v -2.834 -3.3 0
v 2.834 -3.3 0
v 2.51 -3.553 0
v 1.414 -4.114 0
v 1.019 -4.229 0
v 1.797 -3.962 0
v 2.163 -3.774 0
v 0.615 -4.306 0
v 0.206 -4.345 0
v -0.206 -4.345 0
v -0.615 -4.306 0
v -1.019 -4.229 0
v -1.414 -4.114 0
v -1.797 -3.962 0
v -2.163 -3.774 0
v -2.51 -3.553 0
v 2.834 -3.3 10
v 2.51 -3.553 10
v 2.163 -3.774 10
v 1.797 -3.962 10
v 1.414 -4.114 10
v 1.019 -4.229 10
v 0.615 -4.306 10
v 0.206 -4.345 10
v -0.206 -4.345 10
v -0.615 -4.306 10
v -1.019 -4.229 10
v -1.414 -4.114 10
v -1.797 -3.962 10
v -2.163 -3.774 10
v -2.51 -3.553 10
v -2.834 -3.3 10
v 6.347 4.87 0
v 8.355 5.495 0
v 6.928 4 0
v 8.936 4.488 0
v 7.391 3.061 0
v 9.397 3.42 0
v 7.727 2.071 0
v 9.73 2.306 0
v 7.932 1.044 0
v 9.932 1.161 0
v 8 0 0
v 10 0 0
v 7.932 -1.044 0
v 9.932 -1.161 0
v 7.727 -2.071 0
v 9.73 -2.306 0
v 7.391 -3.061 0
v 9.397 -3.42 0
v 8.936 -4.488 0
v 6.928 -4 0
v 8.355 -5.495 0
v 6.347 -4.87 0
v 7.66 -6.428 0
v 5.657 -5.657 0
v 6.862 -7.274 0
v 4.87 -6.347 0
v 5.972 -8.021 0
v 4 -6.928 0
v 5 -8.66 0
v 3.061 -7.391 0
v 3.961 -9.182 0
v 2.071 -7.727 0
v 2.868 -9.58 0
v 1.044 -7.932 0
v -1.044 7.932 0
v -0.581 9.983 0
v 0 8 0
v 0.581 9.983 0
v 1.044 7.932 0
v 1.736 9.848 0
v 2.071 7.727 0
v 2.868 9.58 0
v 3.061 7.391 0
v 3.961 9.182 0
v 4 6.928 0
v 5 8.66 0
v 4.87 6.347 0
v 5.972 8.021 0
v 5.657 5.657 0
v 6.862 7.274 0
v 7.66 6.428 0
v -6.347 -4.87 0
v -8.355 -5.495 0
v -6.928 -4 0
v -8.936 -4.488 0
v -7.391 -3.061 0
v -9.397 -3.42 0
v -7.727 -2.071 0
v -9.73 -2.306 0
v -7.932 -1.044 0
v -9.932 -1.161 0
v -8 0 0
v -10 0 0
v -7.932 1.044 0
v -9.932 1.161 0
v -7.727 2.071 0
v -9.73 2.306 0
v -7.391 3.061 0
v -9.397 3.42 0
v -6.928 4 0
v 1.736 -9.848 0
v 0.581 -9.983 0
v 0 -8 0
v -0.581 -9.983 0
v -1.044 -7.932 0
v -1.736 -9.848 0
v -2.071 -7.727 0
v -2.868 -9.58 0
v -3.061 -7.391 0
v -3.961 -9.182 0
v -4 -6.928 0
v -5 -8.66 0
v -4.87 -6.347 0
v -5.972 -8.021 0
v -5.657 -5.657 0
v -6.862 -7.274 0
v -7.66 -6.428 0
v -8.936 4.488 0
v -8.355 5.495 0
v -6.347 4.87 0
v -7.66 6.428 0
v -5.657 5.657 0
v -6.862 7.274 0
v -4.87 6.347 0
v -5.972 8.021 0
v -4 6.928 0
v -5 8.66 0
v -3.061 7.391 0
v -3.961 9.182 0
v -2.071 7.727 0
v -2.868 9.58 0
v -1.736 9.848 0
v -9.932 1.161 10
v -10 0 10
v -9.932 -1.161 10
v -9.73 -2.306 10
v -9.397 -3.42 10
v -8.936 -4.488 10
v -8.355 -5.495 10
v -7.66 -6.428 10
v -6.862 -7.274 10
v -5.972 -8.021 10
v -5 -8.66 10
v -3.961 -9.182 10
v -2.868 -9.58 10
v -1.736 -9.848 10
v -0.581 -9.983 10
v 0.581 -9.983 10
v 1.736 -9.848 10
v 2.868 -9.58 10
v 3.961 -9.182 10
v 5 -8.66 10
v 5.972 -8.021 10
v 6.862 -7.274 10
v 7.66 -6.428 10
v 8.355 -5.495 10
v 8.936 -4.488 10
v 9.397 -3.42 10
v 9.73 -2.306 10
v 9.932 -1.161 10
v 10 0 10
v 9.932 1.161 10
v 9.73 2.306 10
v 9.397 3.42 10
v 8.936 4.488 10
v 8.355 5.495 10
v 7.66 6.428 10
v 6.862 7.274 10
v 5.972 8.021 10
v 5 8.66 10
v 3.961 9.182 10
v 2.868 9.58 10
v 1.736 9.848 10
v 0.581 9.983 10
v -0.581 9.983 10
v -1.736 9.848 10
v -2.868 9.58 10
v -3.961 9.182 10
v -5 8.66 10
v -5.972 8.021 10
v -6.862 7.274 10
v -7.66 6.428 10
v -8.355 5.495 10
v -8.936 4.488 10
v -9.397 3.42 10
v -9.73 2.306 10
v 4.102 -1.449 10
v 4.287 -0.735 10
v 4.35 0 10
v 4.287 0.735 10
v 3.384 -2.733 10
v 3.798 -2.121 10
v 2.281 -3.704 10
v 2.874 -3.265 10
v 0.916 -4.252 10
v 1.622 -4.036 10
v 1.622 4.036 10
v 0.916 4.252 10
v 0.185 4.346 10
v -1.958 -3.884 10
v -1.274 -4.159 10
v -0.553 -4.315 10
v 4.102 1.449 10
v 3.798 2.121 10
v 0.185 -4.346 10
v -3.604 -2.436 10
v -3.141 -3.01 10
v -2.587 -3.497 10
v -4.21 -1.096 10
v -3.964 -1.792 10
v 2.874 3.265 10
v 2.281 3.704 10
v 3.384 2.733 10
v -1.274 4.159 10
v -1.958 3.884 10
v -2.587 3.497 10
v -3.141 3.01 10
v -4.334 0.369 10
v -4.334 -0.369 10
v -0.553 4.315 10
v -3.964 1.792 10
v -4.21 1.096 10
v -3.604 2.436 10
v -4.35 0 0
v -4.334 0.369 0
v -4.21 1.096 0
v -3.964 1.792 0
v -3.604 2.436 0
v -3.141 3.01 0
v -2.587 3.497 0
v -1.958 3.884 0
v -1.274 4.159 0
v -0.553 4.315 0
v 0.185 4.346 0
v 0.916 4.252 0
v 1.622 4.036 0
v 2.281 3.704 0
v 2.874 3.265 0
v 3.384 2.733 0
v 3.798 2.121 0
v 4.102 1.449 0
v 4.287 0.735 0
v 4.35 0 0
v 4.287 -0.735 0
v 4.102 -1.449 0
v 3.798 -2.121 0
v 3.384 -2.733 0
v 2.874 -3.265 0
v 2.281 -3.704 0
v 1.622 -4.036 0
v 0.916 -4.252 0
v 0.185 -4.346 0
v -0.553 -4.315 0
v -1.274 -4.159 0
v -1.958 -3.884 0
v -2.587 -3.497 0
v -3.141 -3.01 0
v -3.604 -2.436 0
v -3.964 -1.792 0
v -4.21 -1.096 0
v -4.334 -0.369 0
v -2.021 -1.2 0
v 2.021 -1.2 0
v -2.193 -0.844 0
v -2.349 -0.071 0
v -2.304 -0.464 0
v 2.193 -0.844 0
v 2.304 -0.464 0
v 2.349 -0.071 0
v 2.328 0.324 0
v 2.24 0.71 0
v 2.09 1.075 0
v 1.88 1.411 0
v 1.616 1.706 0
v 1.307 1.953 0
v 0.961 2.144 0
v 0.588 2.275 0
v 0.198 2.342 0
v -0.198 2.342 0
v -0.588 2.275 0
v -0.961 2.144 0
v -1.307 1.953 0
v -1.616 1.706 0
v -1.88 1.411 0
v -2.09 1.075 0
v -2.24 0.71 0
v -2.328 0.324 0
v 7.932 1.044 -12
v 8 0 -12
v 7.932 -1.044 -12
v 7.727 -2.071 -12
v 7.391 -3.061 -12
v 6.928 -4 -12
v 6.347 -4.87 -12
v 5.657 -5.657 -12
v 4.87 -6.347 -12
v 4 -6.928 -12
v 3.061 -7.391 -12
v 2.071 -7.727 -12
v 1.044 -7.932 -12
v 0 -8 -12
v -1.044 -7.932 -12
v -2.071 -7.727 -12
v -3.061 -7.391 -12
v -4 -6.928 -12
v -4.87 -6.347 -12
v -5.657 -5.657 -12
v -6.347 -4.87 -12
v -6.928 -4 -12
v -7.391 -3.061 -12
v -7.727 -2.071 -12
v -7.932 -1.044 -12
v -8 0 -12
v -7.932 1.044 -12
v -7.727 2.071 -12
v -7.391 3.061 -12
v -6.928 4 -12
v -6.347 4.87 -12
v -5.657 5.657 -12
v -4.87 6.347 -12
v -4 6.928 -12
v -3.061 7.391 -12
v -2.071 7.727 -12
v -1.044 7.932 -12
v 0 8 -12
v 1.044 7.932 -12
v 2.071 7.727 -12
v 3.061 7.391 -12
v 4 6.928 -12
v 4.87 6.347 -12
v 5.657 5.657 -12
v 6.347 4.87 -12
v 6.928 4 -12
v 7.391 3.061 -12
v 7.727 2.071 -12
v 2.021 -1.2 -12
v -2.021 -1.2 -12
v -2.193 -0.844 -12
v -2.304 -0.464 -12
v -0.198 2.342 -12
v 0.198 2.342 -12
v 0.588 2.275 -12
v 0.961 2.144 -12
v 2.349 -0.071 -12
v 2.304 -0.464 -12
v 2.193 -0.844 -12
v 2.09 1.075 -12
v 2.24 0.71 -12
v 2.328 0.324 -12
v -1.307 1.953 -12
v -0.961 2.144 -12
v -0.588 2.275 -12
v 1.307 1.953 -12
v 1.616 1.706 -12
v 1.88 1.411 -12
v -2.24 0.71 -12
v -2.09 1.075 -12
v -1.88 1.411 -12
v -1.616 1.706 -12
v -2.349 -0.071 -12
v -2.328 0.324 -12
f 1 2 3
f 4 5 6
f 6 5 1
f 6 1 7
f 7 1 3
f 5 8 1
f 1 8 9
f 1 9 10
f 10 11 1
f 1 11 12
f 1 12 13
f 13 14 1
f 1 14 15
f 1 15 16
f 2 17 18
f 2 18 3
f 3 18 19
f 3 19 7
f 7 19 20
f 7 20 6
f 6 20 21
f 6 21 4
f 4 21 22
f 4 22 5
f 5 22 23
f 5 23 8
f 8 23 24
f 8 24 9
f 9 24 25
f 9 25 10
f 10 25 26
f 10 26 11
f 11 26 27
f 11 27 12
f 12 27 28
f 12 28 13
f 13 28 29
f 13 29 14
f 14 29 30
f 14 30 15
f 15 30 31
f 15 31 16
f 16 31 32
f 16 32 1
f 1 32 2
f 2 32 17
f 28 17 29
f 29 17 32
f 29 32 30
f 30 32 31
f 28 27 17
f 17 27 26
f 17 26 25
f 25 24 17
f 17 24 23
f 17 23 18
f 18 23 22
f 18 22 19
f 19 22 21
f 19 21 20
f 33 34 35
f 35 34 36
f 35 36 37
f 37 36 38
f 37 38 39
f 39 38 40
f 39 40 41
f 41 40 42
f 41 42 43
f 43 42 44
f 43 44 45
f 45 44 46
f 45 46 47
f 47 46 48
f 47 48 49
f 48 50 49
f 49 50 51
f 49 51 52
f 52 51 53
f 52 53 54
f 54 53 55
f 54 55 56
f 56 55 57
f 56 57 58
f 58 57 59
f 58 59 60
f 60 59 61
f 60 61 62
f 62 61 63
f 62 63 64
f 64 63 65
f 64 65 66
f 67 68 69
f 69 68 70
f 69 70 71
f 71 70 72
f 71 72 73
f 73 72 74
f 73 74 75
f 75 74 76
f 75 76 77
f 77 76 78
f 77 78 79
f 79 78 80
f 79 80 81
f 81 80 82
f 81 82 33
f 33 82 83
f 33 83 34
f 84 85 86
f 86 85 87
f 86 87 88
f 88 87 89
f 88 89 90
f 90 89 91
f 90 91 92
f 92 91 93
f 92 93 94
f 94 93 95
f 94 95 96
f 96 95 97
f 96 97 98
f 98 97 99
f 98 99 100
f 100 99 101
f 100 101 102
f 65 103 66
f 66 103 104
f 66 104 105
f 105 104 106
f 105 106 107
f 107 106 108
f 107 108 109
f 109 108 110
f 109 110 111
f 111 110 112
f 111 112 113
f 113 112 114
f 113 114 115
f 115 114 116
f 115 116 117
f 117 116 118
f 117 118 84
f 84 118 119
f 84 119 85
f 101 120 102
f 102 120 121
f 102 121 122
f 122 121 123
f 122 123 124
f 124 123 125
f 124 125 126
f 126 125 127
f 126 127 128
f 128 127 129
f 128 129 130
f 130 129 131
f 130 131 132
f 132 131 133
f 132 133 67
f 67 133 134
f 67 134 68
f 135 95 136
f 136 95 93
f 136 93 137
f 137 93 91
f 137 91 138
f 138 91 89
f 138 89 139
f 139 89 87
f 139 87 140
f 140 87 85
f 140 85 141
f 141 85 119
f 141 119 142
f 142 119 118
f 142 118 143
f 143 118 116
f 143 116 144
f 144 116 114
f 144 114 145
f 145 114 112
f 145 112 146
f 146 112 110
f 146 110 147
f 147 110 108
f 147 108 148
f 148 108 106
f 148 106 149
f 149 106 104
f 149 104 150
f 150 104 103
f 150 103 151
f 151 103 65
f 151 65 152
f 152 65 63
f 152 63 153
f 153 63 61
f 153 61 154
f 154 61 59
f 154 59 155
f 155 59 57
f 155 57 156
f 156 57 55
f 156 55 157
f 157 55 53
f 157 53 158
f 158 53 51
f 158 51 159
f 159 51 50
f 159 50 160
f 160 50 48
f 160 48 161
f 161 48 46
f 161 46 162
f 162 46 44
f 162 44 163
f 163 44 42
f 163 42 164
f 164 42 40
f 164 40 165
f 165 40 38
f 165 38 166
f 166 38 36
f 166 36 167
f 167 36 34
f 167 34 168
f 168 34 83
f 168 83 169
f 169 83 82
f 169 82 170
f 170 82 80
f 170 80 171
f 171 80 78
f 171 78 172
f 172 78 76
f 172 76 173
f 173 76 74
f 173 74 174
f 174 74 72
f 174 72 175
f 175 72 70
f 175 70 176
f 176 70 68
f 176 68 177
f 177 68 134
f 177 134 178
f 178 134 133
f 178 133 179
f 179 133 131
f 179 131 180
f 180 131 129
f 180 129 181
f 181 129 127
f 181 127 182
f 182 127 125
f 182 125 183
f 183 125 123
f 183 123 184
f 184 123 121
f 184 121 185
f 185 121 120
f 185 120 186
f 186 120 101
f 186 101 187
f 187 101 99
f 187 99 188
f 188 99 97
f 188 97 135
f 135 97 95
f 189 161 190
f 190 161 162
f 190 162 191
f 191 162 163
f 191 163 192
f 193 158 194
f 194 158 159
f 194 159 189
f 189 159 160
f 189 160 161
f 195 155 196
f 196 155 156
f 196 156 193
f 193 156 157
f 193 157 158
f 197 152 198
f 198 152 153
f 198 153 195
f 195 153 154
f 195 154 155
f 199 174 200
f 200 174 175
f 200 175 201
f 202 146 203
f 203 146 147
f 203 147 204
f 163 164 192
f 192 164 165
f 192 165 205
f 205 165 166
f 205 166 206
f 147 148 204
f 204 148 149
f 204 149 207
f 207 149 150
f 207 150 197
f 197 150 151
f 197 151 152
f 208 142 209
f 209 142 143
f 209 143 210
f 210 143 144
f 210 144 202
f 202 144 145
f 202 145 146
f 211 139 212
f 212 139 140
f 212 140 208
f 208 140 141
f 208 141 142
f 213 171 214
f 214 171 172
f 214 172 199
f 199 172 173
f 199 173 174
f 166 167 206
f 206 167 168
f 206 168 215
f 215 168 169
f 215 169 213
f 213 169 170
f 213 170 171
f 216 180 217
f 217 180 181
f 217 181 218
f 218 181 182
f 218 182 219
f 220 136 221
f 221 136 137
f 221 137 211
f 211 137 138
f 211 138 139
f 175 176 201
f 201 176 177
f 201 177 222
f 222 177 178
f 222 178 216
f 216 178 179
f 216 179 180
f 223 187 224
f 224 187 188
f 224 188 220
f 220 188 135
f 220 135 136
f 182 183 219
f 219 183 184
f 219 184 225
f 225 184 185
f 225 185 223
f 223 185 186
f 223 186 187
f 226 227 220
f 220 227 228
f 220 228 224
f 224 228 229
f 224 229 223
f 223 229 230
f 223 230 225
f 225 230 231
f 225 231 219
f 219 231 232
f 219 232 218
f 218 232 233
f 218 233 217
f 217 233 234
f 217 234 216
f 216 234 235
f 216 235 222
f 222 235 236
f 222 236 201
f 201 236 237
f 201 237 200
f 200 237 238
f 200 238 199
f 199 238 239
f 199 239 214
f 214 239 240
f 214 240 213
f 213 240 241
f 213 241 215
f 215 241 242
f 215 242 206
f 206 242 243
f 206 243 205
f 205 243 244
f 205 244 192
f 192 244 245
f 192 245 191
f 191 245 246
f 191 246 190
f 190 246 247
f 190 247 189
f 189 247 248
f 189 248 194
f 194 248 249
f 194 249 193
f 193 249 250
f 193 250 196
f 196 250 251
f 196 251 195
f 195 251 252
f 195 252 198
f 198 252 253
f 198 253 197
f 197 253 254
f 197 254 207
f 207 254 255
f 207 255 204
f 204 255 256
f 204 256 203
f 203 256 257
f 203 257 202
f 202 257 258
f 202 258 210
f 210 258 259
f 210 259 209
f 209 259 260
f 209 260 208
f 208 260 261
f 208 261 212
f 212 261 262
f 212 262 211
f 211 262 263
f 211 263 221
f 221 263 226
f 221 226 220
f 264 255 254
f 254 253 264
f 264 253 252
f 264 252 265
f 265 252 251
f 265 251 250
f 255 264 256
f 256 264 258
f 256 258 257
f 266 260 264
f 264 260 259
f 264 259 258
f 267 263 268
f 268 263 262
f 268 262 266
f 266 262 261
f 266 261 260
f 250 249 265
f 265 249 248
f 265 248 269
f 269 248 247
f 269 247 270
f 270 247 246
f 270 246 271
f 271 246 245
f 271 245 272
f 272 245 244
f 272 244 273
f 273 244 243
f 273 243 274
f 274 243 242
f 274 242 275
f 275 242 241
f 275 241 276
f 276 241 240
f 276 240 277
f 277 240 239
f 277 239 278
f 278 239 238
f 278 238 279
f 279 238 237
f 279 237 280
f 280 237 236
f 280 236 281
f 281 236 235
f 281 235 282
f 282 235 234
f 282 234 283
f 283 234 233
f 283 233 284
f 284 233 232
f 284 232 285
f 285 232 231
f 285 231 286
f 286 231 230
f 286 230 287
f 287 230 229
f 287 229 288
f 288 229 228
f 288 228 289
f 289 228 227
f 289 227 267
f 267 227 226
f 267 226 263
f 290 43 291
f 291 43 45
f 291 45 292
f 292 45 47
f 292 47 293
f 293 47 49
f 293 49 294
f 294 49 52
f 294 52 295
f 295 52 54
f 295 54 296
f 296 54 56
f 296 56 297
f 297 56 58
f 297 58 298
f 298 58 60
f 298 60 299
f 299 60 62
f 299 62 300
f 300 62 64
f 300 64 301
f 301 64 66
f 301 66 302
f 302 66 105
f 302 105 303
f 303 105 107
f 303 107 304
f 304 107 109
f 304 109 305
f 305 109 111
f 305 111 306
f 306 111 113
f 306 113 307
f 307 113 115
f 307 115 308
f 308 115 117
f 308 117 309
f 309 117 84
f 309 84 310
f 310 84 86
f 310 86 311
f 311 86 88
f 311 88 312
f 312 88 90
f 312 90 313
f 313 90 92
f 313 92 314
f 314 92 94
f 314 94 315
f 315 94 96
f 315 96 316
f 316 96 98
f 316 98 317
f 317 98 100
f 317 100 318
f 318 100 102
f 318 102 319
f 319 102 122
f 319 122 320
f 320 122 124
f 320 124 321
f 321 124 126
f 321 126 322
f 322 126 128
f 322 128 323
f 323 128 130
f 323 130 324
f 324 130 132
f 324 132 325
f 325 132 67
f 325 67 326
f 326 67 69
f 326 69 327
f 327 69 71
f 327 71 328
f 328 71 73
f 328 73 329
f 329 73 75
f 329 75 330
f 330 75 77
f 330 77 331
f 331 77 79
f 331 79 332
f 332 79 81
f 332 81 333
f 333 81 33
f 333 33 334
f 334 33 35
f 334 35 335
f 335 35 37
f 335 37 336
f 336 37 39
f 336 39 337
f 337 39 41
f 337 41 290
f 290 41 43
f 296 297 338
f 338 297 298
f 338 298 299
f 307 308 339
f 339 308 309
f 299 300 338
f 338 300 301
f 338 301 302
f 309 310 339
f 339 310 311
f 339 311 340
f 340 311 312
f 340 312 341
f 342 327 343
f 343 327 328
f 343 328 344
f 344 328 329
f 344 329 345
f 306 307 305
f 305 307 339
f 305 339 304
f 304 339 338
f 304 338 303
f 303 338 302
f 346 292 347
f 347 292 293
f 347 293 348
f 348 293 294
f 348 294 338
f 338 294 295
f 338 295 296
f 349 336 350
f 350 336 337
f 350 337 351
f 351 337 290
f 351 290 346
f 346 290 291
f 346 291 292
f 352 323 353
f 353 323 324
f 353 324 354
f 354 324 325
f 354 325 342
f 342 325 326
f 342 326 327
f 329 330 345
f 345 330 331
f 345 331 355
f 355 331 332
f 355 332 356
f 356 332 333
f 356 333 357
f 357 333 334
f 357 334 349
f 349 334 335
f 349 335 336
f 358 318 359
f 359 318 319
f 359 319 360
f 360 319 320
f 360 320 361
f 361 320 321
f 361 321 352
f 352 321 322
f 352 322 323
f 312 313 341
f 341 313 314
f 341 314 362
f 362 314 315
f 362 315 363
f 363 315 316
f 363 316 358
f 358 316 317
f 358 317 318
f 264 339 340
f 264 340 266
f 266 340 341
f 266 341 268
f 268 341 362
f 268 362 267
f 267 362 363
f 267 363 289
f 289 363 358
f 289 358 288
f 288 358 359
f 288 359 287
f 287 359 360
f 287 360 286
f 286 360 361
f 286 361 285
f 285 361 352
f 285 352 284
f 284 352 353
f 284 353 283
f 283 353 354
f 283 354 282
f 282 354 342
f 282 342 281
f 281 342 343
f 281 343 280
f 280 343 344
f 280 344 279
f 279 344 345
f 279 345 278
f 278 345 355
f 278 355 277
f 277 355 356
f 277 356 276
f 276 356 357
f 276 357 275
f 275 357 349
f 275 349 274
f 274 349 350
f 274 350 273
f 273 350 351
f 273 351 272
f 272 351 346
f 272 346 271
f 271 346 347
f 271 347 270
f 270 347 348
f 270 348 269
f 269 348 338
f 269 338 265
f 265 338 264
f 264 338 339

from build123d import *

# Parameters (mm, degrees)
ESQUISSE1_R             = 10
BOSS_EXTRU_1_DEPTH      = 10
ESQUISSE2_R             = 8
BOSS_EXTRU_2_DEPTH      = 12
ESQUISSE3_R             = 4.35
ENL_V_MAT_EXTRU_1_DEPTH = 10
ESQUISSE4_R             = 2.35
ENL_V_MAT_EXTRU_2_DEPTH = 12
BOSS_EXTRU_3_REACH      = 28.153
BOSS_EXTRU_4_DEPTH      = 12


with BuildPart() as part:
    # Esquisse1 → Boss.-Extru.1 (new body)
    with BuildSketch(Plane.XY):
        Circle(ESQUISSE1_R)
    extrude(amount=BOSS_EXTRU_1_DEPTH)

    # Esquisse3 → Enlèv. mat.-Extru.1 (cut)
    with BuildSketch(Plane.XY.offset(10)):
        Circle(ESQUISSE3_R)
    extrude(amount=-ENL_V_MAT_EXTRU_1_DEPTH, mode=Mode.SUBTRACT)



with BuildPart() as body_2:
    # Esquisse2 → Boss.-Extru.2 (new body)
    with BuildSketch(Plane(origin=(0, 0, 0), x_dir=(-1, 0, 0), z_dir=(0, 0, -1))):
        Circle(ESQUISSE2_R)
    extrude(amount=BOSS_EXTRU_2_DEPTH)

    # Esquisse4 → Enlèv. mat.-Extru.2 (cut)
    with BuildSketch(Plane(origin=(0, 0, -12), x_dir=(-1, 0, 0), z_dir=(0, 0, -1))):
        Circle(ESQUISSE4_R)
    extrude(amount=-ENL_V_MAT_EXTRU_2_DEPTH, mode=Mode.SUBTRACT)


with BuildPart() as body_3:

    # Esquisse5 → Boss.-Extru.3 (new, up to next)
    with BuildSketch(Plane.XY.offset(10), mode=Mode.PRIVATE) as boss_extru_3_sk1:
        with BuildLine():
            Line((-2.834166544, -3.3), (2.834166544, -3.3))
            ThreePointArc((2.834166544, -3.3), (0, -4.35), (-2.834166544, -3.3))
        make_face()
    boss_extru_3_tool1 = extrude(boss_extru_3_sk1.sketch, amount=-BOSS_EXTRU_3_REACH, mode=Mode.PRIVATE) - body_2.part
    add(boss_extru_3_tool1.solids().sort_by_distance((0, -3.724673, 10))[0])


with BuildPart() as part_1:
    add(part.part)

    add(body_2.part)  # Boss.-Extru.4 merges body 2
    # Esquisse6 → Boss.-Extru.4 (add)
    with BuildSketch(Plane(origin=(0, 0, -12), x_dir=(-1, 0, 0), z_dir=(0, 0, -1))):
        with BuildLine():
            Line((-2.020519735, -1.2), (2.020519735, -1.2))
            ThreePointArc((2.020519735, -1.2), (0, -2.35), (-2.020519735, -1.2))
        make_face()
    extrude(amount=-BOSS_EXTRU_4_DEPTH)


solid = Compound([body_3.part, part_1.part])
